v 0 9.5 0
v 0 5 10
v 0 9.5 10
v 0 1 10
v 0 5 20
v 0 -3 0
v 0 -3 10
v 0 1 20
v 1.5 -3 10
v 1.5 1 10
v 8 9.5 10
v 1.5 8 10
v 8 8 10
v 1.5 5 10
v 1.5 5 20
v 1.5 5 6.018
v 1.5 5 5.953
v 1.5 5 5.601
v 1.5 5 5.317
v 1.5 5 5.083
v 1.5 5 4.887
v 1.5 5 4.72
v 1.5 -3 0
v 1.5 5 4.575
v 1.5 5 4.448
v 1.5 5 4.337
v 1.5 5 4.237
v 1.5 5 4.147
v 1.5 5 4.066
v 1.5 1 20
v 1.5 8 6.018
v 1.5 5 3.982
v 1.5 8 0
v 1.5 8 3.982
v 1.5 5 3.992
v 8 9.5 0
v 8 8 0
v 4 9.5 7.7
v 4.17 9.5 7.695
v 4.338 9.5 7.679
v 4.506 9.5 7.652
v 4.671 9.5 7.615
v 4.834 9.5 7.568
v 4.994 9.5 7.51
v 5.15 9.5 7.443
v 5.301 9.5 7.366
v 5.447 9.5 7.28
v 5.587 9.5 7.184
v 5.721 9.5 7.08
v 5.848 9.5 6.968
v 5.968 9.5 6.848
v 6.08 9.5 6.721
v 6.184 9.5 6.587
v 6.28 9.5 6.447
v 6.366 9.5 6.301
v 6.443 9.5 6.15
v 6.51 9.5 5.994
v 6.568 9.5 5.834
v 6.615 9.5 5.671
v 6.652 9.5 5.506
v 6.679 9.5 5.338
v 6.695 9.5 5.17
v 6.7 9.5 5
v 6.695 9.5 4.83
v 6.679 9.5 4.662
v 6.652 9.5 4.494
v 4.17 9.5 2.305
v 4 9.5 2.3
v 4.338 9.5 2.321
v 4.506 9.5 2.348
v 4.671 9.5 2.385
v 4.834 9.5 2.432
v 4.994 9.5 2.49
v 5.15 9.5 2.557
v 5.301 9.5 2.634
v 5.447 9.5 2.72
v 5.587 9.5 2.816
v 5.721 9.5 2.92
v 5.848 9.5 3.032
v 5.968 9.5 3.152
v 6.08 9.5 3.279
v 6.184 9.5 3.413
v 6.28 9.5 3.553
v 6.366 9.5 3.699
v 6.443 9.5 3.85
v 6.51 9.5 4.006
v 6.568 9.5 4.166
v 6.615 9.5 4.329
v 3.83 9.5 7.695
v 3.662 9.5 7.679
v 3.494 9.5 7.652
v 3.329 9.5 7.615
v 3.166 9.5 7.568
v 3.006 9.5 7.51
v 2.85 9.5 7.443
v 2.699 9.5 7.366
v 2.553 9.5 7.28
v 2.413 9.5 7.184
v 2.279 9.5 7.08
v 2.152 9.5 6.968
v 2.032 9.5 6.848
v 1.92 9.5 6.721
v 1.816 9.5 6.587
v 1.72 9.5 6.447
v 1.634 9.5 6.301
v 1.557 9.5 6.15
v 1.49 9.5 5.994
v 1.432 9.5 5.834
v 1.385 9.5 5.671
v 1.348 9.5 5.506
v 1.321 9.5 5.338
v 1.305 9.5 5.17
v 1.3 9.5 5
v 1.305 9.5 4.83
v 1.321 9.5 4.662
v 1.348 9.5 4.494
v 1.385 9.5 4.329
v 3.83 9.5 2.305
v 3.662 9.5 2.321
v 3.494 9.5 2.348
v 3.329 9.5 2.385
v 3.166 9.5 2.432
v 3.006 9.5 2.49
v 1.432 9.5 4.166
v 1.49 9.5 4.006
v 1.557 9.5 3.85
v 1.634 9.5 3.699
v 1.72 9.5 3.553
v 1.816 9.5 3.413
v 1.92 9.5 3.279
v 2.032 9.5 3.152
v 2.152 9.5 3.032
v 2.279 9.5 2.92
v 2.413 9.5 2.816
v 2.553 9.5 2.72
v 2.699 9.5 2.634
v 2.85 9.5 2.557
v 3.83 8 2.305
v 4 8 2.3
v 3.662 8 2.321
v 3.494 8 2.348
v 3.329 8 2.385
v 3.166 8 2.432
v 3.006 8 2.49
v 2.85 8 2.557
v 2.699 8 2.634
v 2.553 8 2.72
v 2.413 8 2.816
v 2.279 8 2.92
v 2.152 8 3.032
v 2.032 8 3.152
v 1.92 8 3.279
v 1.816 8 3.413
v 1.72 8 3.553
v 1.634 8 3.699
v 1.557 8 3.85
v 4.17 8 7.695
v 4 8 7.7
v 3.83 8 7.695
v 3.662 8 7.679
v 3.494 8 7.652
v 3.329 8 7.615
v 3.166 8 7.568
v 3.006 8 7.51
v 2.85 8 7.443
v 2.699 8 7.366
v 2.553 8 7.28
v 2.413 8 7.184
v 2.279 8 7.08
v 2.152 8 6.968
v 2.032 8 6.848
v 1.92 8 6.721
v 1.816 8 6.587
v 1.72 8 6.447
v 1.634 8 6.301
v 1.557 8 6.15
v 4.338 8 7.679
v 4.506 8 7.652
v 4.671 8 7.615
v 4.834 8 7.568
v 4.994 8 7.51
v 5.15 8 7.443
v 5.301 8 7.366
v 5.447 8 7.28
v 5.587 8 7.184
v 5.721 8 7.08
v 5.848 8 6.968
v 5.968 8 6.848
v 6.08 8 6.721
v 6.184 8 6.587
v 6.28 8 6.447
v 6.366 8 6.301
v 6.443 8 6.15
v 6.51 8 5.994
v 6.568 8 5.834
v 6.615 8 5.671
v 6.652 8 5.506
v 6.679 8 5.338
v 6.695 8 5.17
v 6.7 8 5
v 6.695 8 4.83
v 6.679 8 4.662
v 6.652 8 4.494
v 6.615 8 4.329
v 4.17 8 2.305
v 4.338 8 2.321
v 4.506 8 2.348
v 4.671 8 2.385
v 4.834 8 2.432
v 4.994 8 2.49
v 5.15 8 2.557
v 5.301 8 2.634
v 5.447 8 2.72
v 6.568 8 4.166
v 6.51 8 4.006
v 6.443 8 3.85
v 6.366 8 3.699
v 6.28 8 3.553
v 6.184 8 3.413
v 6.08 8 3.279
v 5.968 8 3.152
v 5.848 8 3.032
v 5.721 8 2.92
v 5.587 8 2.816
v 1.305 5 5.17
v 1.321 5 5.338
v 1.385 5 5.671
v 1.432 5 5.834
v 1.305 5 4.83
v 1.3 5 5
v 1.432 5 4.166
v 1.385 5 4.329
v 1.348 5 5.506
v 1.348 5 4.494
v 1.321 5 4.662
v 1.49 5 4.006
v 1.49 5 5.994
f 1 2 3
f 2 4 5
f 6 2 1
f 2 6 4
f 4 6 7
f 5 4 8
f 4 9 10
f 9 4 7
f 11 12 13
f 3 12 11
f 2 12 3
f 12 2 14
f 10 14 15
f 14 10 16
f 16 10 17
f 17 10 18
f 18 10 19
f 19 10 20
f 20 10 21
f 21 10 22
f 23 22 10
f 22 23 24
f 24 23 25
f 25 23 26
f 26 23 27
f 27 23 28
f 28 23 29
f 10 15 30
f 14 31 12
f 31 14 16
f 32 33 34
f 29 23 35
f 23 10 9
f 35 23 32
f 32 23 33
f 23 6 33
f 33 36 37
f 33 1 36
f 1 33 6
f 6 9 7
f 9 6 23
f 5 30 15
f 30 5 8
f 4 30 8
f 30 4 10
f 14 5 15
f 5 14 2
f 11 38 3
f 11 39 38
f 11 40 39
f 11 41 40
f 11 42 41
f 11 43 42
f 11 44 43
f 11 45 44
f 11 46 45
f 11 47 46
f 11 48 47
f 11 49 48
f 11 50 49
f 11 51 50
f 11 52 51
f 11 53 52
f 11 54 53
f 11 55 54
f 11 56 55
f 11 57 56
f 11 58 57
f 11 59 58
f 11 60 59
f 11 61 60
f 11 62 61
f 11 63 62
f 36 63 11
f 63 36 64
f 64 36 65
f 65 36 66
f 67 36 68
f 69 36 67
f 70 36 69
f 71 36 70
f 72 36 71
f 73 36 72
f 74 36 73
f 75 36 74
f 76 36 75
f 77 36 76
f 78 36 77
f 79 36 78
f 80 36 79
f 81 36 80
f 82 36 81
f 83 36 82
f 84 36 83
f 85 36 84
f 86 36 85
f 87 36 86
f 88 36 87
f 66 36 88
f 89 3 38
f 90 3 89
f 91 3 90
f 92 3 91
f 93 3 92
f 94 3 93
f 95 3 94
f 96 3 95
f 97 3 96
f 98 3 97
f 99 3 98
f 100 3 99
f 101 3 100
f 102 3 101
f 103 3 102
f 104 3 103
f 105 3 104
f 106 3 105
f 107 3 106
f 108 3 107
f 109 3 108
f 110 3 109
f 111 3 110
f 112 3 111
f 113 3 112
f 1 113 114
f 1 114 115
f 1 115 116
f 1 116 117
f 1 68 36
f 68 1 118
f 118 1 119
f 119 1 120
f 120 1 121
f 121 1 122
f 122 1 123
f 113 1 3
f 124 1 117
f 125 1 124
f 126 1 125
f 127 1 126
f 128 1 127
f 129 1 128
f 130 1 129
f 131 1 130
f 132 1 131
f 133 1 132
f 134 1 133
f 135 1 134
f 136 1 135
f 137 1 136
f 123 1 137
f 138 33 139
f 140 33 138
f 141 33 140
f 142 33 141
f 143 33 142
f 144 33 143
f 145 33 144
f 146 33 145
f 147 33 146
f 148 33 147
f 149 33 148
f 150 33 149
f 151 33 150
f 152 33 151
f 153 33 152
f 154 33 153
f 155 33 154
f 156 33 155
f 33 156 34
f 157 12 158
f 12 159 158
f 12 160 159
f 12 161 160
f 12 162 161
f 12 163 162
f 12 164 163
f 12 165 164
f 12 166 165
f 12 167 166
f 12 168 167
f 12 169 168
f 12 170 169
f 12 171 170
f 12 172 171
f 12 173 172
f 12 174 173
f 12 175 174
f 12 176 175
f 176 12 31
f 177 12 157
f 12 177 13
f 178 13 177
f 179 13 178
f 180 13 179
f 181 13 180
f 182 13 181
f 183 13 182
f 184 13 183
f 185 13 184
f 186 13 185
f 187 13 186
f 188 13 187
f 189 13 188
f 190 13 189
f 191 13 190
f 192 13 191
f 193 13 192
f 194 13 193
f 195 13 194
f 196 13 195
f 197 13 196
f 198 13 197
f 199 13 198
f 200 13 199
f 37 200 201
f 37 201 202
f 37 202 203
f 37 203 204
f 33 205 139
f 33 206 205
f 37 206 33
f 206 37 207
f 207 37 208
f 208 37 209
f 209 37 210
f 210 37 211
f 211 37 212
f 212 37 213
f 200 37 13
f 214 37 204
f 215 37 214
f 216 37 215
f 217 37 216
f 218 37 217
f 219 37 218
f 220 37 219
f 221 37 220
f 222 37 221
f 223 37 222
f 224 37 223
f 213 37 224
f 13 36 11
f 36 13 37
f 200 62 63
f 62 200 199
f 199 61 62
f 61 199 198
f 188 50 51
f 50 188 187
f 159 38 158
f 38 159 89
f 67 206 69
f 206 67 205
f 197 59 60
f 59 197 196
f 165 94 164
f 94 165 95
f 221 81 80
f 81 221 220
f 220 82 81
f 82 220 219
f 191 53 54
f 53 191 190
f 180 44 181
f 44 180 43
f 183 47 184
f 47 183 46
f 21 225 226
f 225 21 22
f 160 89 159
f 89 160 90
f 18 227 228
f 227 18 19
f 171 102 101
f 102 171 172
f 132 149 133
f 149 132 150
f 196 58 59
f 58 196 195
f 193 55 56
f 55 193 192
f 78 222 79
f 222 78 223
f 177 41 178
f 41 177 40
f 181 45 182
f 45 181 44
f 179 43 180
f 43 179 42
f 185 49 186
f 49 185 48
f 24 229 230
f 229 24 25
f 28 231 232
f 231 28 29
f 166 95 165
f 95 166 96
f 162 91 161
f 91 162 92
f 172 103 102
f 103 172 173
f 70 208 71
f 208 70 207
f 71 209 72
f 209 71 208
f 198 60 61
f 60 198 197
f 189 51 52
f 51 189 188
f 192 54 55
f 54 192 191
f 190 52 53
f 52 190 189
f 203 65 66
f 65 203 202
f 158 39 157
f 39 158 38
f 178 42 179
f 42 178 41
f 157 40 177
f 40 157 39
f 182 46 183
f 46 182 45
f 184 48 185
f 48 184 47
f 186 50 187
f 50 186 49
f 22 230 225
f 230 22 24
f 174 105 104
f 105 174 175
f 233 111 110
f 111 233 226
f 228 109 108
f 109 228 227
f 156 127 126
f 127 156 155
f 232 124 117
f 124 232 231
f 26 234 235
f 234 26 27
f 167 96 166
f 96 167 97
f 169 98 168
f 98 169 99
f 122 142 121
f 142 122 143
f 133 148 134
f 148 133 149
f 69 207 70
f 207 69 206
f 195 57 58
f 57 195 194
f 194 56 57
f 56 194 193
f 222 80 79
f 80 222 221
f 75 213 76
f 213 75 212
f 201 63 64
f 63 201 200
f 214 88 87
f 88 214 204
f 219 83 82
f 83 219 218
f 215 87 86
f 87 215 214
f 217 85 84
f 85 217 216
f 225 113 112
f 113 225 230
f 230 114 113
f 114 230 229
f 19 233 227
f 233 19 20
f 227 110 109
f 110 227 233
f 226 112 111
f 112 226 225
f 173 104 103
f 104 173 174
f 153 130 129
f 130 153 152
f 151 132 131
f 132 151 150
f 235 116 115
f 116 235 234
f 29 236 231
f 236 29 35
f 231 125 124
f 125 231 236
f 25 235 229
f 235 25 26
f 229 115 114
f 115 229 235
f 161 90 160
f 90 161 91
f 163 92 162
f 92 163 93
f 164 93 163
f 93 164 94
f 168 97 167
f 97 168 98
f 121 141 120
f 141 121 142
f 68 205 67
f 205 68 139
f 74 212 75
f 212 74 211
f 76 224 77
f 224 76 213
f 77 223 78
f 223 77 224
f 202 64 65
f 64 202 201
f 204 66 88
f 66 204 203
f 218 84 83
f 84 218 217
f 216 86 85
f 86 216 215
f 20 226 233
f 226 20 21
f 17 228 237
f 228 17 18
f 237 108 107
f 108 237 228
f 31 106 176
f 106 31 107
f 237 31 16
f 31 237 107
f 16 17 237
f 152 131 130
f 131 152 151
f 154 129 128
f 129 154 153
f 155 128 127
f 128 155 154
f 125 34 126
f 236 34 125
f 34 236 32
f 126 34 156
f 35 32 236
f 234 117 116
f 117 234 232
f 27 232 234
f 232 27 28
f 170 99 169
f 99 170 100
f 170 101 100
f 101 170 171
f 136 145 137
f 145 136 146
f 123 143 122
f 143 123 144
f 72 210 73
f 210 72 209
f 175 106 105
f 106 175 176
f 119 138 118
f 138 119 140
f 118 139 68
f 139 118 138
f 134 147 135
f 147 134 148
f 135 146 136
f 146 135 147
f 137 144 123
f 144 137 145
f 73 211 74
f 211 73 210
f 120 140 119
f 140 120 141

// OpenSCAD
//include <relativity.scad>

radio_borde = 10/2;
radio_pajita = 5.4/2;
altura = 10;


union() {
  difference() {
    varandilla();
    taladro_soporte();
  }
  /*difference() {
    difference() {
      soporte(altura);
    }
    taladros_pagitas();
    quitar_material();
  }*/
}

module taladro_soporte(){
  translate([4, 10, 5]) {
    rotate([90, 0, 0]) {
      cylinder(r=radio_pajita, h=altura-5,$fn=100);
    }
  }
}



module varandilla() {
  translate([8, 8, 0]) {
    rotate([0, 0, 90]) {
      cube(size=[1.5, 8, 10]);
    }
  }
  mirror([0, 0, 0])
    translate([0, -3, 0]) {
      cube(size=[1.5, 12, 10]);
      translate([0, 4, 0]) {
        cube(size=[1.5, 4, 20]);
      }
    }
}



module quitar_material() {
  translate([-17, -2, 0])
    cube(size=[19, 4, 10]);
  translate([-12, -5, 0])
    cube(size=[5, 10, 10]);
}
